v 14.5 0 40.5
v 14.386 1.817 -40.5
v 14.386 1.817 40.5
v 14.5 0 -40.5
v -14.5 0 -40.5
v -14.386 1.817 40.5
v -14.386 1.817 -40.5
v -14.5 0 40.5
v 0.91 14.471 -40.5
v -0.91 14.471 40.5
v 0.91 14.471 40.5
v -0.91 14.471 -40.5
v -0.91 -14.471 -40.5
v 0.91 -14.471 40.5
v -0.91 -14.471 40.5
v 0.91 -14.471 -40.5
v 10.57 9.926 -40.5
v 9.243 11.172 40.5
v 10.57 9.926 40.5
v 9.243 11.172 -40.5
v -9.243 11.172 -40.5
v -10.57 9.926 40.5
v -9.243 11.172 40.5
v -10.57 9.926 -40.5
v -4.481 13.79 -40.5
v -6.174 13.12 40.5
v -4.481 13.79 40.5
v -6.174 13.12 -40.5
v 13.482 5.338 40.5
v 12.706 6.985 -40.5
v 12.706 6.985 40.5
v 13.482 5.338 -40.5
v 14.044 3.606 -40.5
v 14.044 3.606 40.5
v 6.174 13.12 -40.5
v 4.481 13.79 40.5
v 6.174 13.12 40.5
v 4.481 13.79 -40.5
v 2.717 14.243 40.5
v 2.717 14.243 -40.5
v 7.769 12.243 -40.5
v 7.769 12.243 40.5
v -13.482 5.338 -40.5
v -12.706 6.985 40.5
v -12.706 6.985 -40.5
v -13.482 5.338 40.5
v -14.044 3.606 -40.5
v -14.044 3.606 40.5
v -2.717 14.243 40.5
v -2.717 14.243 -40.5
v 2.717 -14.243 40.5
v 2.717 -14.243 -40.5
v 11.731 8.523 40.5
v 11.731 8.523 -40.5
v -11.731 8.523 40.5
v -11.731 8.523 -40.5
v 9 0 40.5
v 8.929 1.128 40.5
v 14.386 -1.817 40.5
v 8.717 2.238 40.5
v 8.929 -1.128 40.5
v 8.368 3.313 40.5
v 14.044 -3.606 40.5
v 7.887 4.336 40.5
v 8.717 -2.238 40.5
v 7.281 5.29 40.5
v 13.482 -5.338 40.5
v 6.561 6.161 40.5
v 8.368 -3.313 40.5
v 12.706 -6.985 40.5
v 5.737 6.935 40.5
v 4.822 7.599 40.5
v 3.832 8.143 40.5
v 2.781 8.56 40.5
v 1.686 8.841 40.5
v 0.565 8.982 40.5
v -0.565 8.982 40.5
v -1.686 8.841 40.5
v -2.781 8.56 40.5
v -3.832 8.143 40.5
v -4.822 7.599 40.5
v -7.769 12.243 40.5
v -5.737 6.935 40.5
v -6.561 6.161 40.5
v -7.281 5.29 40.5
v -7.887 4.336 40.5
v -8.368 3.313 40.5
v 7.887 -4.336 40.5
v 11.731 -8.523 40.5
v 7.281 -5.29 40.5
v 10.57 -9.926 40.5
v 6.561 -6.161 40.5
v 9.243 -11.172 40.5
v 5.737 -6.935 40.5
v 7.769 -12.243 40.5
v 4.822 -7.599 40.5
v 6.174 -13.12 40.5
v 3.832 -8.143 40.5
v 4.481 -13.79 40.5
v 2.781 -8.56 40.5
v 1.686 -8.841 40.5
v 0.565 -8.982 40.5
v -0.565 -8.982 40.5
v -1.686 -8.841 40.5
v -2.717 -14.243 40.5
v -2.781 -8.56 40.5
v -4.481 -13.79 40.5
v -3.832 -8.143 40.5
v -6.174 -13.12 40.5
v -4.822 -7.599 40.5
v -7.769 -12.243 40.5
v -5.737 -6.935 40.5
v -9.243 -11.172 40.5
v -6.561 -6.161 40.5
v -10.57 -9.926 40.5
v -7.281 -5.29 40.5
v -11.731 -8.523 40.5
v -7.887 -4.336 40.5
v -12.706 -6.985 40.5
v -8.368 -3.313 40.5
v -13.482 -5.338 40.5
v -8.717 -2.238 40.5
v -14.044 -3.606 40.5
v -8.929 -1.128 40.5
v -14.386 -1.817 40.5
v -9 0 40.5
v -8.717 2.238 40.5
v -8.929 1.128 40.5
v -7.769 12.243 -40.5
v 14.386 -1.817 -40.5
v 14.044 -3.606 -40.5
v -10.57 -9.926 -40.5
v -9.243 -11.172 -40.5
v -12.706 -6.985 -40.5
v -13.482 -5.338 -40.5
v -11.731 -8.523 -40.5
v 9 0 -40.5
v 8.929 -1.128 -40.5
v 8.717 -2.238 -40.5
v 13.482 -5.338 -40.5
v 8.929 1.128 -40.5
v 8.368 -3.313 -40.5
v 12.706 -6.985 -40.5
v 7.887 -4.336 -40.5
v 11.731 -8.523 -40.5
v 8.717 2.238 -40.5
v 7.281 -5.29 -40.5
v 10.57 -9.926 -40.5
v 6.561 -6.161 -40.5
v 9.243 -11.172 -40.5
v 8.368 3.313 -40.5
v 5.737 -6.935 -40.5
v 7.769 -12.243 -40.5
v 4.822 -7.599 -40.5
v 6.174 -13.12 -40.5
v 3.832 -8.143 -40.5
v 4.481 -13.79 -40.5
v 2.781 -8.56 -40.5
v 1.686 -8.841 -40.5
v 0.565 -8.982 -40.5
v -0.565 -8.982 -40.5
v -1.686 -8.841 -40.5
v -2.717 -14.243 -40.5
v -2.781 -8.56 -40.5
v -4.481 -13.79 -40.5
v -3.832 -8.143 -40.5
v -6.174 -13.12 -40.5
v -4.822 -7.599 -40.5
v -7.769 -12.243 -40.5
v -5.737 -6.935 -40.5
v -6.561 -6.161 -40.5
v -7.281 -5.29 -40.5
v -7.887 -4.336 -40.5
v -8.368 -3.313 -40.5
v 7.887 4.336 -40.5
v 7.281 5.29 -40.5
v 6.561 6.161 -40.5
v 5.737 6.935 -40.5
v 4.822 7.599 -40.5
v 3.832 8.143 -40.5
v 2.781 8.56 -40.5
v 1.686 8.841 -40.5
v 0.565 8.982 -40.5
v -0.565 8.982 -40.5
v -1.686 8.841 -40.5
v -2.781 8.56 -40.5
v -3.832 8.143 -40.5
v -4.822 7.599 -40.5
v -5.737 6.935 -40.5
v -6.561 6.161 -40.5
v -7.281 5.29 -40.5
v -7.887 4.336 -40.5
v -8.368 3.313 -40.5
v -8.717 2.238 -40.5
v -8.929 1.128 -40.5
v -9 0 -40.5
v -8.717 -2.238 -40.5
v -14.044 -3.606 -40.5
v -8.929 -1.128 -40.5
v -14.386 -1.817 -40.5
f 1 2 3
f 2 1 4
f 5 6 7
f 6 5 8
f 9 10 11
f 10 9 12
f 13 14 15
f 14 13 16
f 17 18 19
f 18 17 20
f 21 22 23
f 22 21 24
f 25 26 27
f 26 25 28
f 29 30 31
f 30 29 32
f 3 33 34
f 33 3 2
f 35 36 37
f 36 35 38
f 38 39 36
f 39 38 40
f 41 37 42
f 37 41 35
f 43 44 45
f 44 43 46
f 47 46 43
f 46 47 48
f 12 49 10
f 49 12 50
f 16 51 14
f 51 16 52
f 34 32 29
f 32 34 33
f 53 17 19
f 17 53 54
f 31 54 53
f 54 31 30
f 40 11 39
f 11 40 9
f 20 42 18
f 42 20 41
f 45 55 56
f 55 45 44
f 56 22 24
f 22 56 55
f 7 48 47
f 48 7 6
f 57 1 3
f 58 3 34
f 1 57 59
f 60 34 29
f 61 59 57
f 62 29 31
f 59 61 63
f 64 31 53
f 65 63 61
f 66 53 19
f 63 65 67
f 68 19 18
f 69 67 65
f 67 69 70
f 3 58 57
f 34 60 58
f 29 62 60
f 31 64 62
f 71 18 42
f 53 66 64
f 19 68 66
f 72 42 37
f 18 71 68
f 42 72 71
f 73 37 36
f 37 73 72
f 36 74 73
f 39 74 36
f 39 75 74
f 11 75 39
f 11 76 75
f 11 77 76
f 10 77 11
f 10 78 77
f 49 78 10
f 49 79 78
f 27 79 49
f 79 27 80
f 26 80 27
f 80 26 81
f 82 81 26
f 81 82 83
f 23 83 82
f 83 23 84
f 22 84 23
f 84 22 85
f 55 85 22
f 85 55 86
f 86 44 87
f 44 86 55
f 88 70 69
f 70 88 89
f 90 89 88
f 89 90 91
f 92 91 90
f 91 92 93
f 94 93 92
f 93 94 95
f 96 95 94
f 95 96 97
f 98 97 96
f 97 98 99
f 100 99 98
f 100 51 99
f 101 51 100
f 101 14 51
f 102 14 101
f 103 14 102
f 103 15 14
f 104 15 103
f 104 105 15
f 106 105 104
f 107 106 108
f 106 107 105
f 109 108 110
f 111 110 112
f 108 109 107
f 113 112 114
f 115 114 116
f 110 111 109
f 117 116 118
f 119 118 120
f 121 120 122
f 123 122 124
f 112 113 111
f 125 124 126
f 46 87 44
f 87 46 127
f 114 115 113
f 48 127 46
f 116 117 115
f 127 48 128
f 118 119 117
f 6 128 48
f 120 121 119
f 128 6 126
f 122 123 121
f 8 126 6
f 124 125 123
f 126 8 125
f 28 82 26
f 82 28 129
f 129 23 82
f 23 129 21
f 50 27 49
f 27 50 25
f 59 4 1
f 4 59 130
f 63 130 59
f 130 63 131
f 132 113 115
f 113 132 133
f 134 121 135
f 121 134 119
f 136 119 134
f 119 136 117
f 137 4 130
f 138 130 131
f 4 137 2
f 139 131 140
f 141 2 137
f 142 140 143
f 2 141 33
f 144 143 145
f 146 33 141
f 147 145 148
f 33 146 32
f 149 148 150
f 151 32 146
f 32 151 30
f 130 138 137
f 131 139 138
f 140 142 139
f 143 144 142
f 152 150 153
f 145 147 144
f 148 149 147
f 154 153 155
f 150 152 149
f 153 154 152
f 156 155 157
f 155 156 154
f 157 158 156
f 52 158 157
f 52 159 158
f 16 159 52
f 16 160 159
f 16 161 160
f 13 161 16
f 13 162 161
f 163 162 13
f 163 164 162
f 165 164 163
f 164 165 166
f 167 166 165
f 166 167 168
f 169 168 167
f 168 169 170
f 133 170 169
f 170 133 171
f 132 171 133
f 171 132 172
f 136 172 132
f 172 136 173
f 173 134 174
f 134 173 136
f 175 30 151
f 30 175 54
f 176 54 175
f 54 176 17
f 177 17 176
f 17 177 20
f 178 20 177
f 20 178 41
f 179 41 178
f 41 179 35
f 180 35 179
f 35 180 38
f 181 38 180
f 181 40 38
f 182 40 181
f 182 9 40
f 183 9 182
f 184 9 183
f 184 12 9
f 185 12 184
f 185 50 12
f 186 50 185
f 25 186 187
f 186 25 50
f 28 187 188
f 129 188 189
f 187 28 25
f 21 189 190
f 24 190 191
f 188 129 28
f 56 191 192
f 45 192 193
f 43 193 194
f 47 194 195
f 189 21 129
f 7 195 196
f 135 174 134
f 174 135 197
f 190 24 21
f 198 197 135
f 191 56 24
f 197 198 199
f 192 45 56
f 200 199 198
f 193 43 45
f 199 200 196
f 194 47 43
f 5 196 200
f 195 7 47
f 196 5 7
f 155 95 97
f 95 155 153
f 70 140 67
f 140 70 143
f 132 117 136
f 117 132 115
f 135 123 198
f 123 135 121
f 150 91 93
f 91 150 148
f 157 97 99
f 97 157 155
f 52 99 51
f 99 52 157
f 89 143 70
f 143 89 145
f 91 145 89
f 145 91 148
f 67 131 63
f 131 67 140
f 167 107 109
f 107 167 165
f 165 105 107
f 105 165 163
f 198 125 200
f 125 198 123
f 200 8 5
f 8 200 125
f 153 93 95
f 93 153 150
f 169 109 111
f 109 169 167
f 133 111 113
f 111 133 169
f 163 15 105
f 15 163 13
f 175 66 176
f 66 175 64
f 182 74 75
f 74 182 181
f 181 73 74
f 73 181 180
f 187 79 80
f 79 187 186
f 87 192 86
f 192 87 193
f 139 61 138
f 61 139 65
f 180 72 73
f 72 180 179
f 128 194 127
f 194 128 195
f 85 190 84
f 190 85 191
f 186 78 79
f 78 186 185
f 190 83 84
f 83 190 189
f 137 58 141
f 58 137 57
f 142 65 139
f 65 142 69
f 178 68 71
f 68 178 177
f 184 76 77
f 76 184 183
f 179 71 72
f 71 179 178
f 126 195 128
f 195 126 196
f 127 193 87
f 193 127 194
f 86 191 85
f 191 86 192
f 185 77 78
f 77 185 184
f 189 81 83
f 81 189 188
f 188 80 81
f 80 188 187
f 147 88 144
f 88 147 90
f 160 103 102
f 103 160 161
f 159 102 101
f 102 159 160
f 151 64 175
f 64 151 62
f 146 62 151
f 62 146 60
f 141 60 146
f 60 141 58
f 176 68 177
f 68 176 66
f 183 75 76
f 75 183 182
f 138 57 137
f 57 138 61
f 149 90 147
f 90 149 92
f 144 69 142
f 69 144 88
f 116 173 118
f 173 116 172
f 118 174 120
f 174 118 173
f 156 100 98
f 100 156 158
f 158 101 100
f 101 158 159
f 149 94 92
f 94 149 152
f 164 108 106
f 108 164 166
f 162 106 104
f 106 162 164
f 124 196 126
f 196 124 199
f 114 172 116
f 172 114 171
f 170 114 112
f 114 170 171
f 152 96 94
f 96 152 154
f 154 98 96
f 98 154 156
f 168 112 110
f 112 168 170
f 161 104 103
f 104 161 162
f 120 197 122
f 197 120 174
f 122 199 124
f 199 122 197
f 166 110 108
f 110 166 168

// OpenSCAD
$fn = 50;


difference() {
	union() {
		translate(v = [0, 0, -40.5000000000]) {
			cylinder(h = 81, r = 14.5000000000);
		}
	}
	union() {
		translate(v = [0, 0, -100.0000000000]) {
			cylinder(h = 200, r = 9);
		}
	}
}
